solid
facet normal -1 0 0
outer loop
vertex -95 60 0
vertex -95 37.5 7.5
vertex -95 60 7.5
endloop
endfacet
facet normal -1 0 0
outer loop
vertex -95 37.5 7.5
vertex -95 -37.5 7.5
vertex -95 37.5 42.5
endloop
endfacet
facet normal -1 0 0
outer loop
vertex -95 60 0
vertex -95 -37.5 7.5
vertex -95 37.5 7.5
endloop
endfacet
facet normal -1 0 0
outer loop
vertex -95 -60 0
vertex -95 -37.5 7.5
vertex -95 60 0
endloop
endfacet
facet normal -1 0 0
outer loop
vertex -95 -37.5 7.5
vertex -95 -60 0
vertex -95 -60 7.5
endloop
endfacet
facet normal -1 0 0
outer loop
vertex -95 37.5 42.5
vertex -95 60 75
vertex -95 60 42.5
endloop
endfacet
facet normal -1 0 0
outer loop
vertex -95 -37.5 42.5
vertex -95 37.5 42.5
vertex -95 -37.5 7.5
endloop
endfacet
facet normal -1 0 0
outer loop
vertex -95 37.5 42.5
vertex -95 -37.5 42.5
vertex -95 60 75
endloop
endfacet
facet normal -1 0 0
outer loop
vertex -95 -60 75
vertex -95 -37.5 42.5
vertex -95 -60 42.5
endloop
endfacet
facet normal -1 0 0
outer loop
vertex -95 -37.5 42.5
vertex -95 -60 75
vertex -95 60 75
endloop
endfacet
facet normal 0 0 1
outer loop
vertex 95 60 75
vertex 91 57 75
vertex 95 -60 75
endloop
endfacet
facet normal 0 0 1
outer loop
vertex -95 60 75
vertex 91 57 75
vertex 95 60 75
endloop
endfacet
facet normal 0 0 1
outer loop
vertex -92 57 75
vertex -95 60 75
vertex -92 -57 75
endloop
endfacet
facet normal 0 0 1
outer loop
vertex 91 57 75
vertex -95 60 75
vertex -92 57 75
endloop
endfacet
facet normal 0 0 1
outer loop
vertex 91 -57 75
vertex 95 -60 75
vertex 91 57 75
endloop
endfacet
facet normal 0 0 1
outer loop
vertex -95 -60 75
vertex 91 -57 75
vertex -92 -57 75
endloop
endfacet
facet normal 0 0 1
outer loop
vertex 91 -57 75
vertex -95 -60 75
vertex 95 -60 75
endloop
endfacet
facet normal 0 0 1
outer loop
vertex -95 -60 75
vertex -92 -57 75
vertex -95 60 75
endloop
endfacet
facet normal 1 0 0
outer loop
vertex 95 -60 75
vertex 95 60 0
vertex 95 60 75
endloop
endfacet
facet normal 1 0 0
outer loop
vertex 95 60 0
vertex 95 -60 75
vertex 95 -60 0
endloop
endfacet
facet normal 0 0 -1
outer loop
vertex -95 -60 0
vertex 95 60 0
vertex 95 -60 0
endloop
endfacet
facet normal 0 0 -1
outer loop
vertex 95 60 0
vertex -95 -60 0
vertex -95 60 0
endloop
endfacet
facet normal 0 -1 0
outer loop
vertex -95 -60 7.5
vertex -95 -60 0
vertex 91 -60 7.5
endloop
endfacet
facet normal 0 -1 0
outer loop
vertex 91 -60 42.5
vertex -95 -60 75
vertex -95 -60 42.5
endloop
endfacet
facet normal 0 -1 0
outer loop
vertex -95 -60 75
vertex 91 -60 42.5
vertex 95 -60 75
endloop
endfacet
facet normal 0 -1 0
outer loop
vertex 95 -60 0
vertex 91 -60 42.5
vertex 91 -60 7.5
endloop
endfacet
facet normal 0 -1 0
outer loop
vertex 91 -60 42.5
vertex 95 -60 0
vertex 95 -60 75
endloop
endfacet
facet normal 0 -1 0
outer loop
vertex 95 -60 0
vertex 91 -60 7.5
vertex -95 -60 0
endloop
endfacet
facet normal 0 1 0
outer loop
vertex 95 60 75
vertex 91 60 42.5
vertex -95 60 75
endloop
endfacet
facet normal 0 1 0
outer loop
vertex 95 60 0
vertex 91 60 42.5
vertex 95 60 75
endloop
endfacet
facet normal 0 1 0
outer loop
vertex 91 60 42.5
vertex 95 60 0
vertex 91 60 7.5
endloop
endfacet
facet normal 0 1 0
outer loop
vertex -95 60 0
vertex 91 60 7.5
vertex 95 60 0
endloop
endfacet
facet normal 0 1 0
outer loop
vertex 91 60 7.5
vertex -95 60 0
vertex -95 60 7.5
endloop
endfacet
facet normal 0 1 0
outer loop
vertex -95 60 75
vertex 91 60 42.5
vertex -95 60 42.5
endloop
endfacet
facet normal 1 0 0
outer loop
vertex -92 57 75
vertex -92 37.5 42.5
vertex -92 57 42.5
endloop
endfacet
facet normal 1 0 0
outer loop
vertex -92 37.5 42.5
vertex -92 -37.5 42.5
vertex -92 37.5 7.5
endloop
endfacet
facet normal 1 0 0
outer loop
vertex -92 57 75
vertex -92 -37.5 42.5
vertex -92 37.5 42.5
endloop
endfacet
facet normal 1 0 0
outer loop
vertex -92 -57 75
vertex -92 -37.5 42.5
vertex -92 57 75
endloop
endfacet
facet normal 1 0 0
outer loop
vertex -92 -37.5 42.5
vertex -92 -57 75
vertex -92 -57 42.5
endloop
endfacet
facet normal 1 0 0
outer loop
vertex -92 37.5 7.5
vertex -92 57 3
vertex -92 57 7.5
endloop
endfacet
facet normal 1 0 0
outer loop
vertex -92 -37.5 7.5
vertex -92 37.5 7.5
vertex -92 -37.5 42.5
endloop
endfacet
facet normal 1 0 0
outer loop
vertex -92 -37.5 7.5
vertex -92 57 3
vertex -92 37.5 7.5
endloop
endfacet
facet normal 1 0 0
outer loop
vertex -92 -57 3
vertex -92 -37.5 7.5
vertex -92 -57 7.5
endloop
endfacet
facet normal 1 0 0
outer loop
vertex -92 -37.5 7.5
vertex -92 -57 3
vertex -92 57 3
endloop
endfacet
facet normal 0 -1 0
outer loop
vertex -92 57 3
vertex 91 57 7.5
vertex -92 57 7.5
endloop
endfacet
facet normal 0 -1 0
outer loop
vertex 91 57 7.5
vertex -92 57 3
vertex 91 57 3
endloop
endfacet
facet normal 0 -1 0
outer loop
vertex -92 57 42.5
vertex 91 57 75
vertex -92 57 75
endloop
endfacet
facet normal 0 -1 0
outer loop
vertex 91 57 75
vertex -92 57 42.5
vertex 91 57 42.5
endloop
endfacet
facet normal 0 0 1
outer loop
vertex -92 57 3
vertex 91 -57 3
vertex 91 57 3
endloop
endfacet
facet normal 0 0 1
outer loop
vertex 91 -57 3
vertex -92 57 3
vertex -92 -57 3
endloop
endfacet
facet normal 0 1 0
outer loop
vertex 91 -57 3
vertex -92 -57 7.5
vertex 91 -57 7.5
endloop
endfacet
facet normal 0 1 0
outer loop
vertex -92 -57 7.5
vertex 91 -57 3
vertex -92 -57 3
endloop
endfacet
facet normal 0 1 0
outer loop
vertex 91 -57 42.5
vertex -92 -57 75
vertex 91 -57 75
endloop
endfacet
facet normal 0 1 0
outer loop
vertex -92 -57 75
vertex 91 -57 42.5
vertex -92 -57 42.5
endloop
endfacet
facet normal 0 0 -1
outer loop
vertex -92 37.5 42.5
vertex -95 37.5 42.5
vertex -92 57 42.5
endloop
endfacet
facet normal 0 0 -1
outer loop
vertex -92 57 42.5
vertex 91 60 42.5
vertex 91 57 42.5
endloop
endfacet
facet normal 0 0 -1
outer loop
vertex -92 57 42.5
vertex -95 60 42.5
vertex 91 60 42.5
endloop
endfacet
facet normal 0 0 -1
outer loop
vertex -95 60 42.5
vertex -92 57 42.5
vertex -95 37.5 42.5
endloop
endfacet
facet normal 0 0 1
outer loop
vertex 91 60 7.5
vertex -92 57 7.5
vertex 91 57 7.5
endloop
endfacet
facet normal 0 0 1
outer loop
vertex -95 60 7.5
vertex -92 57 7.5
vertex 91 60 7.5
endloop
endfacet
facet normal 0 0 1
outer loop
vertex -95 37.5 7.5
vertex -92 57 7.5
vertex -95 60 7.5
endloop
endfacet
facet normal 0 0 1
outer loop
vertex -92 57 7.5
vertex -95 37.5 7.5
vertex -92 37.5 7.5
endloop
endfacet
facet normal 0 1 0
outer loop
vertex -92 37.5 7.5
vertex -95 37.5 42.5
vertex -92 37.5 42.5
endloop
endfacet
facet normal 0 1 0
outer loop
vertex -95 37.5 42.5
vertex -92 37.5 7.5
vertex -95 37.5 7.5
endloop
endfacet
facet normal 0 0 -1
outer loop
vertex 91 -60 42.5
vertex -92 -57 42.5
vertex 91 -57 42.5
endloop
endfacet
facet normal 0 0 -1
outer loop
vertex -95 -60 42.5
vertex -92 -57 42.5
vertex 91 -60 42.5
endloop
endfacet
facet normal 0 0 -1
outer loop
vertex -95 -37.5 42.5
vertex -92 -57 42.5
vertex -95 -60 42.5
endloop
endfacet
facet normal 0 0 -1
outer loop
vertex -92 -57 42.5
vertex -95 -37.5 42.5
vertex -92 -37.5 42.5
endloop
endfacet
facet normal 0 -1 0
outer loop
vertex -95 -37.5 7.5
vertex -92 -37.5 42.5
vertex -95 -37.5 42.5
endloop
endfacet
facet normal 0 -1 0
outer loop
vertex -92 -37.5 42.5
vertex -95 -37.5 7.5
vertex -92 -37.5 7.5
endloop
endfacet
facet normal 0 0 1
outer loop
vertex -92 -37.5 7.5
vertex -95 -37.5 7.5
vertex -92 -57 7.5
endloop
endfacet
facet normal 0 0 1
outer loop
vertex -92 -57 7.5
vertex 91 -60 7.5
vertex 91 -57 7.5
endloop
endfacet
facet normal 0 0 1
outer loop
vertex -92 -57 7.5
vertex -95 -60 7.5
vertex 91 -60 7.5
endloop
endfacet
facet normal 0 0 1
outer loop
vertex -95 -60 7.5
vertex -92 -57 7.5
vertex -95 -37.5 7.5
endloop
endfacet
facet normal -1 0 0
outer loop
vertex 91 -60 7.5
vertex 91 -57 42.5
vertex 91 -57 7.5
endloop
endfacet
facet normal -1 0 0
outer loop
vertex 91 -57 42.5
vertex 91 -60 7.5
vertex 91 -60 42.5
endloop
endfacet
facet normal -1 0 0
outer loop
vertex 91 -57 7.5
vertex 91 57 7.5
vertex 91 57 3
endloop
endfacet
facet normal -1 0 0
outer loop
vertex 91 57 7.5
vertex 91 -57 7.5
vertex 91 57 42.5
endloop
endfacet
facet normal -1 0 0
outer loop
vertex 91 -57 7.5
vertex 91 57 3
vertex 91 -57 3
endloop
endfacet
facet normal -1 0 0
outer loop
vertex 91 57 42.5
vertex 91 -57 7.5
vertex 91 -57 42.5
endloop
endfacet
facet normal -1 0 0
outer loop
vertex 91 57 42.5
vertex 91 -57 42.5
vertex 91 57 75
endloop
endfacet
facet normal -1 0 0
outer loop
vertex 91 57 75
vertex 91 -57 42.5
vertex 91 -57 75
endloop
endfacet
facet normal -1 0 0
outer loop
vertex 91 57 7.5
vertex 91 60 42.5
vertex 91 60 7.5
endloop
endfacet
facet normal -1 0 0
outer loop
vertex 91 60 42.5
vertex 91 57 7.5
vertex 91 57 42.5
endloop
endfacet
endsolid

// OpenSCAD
// =======================================
// SCOUT Recon Rover V1
// Armour Shell YELLOW V1
// Independent File
// =======================================

$fn = 64;


// ===============================
// DIMENSIONS
// ===============================

// Main body size
shell_length = 190;
shell_width = 120;
shell_height = 75;


// Wall thickness
wall = 3;


// Track clearance
track_cutout_width = 45;


// Camera opening
camera_mount_radius = 18;



module SCOUT_Armour_Shell_YELLOW_V1(){


    difference(){


        // Outer shell
        translate([
            0,
            0,
            shell_height/2
        ])

        cube([
            shell_length,
            shell_width,
            shell_height
        ],
        center=true);



        // Hollow inside
        translate([
            0,
            0,
            shell_height/2 + wall
        ])

        cube([
            shell_length - wall*2,
            shell_width - wall*2,
            shell_height
        ],
        center=true);



        // Left track clearance

        translate([
            0,
            shell_width/2,
            25
        ])

        cube([
            shell_length,
            track_cutout_width,
            35
        ],
        center=true);



        // Right track clearance

        translate([
            0,
            -shell_width/2,
            25
        ])

        cube([
            shell_length,
            track_cutout_width,
            35
        ],
        center=true);



        // Camera opening

        translate([
            80,
            0,
            shell_height
        ])

        cylinder(
            d=camera_mount_radius*2,
            h=20,
            center=true
        );



    }


    // Front armour plate

    translate([
        shell_length/2 - 2,
        0,
        shell_height/2
    ])

    cube([
        4,
        shell_width,
        shell_height
    ],
    center=true);

}



SCOUT_Armour_Shell_YELLOW_V1();
